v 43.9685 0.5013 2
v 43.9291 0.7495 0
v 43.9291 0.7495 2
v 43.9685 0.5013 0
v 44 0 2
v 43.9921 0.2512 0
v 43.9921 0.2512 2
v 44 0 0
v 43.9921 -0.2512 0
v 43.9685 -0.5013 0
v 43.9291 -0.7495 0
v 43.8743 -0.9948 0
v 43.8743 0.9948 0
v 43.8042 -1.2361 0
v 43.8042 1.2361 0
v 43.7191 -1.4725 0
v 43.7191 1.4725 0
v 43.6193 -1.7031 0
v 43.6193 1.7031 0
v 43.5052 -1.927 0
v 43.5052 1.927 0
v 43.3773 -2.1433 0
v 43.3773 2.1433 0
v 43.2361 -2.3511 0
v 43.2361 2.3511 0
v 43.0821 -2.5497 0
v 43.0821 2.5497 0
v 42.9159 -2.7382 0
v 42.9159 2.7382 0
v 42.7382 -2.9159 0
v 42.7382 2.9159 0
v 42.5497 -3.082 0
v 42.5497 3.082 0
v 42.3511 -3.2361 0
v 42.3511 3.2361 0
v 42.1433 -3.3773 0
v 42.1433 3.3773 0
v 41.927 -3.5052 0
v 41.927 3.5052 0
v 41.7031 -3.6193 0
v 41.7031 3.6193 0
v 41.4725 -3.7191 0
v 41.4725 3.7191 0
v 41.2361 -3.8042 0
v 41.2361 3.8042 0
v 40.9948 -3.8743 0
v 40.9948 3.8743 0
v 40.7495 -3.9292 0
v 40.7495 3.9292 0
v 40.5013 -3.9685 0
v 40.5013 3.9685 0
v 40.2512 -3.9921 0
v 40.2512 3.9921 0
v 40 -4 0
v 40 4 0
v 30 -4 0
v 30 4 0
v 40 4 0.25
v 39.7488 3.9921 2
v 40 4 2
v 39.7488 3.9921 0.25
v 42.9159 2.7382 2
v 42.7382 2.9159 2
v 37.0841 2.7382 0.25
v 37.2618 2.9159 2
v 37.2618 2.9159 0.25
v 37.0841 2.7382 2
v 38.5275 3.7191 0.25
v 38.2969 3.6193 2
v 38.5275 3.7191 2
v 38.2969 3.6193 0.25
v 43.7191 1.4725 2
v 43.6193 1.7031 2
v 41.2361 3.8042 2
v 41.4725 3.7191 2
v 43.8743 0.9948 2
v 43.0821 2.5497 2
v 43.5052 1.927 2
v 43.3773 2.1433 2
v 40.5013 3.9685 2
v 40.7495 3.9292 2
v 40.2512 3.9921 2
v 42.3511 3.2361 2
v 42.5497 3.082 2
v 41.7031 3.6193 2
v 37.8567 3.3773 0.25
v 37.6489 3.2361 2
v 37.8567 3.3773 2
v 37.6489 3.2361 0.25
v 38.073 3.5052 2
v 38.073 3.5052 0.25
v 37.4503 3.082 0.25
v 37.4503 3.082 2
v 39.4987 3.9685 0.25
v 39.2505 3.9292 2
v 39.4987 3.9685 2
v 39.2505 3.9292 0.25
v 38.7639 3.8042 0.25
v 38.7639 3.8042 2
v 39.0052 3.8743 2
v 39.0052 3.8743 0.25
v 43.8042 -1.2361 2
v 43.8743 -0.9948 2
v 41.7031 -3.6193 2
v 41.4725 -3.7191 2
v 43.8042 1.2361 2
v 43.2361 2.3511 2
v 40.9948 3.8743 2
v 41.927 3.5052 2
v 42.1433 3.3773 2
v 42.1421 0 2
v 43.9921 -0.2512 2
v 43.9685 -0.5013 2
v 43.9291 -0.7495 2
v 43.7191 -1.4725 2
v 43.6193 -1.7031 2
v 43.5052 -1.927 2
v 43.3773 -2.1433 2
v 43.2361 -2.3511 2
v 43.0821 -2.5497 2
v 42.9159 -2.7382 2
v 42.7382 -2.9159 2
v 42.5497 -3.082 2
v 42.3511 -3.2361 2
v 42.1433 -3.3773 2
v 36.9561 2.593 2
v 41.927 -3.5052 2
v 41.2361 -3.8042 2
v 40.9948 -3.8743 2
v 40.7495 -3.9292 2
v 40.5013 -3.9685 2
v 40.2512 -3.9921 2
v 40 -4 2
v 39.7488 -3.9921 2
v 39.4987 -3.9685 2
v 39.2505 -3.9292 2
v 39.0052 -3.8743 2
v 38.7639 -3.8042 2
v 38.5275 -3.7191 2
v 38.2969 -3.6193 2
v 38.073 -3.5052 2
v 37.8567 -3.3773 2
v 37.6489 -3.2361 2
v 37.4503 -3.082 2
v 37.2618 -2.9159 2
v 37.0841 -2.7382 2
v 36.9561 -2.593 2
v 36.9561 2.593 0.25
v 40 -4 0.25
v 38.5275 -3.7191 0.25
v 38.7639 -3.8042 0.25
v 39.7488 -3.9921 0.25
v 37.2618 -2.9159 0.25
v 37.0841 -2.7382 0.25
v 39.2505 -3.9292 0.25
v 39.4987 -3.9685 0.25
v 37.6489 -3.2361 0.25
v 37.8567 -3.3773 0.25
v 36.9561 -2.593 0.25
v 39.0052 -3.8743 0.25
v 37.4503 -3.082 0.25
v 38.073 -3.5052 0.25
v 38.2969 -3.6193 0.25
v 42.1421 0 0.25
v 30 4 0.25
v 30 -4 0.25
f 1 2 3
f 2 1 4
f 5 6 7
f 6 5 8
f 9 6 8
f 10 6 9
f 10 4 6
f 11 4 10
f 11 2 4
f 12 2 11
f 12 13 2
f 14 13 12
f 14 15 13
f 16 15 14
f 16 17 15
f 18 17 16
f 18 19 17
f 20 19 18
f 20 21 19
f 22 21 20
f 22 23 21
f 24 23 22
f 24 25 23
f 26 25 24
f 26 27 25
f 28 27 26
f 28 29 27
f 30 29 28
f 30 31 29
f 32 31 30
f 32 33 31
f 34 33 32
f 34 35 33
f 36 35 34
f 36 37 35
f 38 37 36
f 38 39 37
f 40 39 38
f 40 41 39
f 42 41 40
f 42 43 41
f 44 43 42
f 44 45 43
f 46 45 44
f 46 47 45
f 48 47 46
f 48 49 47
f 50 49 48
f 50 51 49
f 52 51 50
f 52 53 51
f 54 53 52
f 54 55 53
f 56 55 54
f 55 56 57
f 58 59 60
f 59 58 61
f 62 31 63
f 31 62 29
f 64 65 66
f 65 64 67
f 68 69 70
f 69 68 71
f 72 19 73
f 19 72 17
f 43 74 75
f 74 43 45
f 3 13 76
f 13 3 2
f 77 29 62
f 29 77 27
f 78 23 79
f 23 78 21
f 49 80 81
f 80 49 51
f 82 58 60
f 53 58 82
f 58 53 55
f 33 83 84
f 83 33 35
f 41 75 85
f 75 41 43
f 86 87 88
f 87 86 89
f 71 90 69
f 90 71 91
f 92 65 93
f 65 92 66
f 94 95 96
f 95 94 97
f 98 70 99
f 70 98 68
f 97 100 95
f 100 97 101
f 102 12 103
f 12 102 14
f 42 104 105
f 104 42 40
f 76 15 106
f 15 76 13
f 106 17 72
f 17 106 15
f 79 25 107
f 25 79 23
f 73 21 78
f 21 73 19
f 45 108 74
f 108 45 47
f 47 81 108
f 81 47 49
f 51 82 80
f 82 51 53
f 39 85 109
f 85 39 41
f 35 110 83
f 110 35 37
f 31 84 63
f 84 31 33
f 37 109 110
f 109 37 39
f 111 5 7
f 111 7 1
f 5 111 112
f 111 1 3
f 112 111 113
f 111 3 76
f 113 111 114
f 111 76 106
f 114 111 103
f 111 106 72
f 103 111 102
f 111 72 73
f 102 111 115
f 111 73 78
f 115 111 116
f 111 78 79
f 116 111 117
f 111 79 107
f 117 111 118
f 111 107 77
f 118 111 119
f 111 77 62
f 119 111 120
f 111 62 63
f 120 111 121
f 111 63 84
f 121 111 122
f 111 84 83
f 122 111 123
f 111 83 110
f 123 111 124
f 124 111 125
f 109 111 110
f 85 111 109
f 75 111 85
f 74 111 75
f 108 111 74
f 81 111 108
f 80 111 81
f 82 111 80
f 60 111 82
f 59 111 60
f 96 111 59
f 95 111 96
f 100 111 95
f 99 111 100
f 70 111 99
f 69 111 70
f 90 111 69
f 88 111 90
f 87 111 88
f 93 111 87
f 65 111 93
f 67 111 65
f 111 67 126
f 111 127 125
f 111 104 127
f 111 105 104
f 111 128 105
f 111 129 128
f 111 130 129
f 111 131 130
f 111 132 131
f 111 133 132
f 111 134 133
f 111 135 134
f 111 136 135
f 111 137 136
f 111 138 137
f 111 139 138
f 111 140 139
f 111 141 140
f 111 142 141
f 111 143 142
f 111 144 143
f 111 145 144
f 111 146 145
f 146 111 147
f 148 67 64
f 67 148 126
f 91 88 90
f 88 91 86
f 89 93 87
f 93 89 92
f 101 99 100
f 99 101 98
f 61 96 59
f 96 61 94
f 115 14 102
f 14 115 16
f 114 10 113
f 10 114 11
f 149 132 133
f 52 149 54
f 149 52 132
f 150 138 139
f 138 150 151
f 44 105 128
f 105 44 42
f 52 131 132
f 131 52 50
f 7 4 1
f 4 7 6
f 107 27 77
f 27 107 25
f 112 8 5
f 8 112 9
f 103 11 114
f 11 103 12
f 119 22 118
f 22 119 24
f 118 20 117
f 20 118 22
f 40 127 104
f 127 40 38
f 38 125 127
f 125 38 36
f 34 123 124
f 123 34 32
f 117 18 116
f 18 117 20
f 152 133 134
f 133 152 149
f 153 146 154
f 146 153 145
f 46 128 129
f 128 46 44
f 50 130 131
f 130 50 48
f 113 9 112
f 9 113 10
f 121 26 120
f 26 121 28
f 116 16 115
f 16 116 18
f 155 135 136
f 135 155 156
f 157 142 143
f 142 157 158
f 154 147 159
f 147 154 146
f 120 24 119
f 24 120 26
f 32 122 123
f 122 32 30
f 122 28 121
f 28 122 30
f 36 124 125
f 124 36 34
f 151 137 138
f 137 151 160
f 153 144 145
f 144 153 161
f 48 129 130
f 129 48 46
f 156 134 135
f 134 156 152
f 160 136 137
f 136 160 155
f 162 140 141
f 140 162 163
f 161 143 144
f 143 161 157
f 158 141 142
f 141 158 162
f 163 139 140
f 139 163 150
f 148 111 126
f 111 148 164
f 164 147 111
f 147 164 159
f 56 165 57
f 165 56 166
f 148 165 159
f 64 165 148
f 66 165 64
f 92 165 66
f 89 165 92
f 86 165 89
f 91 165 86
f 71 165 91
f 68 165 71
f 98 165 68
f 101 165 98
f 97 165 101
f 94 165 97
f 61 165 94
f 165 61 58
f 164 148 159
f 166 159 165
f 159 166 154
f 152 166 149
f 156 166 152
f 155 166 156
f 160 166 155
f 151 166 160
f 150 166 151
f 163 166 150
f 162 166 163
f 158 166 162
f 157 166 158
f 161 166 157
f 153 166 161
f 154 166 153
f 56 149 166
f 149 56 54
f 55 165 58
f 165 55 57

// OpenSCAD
$fn = 100;

difference() {
translate([40, 0, 0])
    cylinder(r=4, h=2);
    
translate([28, 0, -1])
scale([2, 1, 1])
rotate([0, 0, 45])     
    cube([10, 10, 10], center=true);


}

translate([35, 0, 0.25/2])
    cube([10, 8, 0.25], center=true);

translate([40, 0, 0.25/2])
    cube([4.5, 4, 0.25], center=true);
